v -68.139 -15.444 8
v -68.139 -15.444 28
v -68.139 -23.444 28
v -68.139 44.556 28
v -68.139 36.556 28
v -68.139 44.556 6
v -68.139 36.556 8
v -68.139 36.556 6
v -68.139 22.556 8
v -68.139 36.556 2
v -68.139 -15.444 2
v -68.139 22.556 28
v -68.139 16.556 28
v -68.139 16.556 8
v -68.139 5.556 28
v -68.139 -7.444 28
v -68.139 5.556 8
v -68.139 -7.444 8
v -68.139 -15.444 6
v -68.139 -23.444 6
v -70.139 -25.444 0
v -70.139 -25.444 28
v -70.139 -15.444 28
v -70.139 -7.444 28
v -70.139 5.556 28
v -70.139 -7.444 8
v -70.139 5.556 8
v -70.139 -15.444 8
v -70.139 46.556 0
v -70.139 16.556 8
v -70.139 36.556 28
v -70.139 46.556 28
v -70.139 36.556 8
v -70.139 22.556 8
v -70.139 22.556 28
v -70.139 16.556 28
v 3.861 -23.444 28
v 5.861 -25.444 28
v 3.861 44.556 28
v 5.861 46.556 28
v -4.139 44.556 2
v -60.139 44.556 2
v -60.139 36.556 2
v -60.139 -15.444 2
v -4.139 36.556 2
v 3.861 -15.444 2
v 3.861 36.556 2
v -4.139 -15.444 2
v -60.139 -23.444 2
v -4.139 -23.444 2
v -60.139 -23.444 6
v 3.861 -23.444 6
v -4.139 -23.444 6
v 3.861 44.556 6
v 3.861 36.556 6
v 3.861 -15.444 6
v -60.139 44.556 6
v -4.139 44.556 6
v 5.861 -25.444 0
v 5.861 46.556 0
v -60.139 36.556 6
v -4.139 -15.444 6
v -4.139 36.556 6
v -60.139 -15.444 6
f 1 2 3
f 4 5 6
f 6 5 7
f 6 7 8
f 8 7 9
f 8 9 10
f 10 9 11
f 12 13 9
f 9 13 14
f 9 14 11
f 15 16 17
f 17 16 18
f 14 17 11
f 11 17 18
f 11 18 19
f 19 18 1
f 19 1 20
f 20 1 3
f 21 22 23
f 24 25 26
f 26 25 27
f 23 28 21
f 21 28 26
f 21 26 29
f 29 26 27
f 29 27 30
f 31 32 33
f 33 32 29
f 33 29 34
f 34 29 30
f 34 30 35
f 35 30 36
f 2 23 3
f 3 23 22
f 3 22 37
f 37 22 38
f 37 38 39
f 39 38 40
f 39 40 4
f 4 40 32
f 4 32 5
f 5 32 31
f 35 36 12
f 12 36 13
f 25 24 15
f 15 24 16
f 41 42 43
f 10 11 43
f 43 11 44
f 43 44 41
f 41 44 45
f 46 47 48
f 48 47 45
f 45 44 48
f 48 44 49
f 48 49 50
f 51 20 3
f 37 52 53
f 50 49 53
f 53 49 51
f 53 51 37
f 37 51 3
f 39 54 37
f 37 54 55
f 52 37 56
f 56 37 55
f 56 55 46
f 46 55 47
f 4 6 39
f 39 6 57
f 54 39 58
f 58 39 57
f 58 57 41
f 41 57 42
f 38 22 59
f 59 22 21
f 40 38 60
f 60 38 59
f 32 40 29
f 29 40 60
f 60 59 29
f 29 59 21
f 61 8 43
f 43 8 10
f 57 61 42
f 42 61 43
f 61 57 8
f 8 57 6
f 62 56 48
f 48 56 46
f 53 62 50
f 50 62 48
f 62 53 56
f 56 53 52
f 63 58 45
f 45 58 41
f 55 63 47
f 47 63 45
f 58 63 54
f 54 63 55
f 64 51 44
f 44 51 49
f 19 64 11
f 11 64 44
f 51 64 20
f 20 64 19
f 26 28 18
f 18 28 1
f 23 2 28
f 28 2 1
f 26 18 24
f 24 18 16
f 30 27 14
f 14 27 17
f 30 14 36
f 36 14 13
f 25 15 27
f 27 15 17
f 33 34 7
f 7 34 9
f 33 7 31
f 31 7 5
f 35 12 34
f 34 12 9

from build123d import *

# Parameters (mm, degrees)
ESQUISSE1_W             = 76
ESQUISSE1_H             = 72
BOSS_EXTRU_1_DEPTH      = 2
ESQUISSE2_W             = 76
ESQUISSE2_H             = 72
ESQUISSE2_W_2           = 72
ESQUISSE2_H_2           = 68
BOSS_EXTRU_2_DEPTH      = 26
ESQUISSE3_W             = 8
ESQUISSE3_H             = 8
BOSS_EXTRU_3_DEPTH      = 4
ESQUISSE4_W             = 12.488308145
ESQUISSE4_H             = 8
ESQUISSE4_W_2           = 11.866165586
ESQUISSE4_H_2           = 11
ESQUISSE4_W_3           = 11.945061533
ESQUISSE4_H_3           = 14
ENL_V_MAT_EXTRU_1_DEPTH = 87.526649953


with BuildPart() as part:
    # Esquisse1 → Boss.-Extru.1 (new body)
    with BuildSketch(Plane.XY):
        with Locations((-32.138593491, 10.555760709)):
            Rectangle(ESQUISSE1_W, ESQUISSE1_H)
    extrude(amount=BOSS_EXTRU_1_DEPTH)

    # Esquisse2 → Boss.-Extru.2 (add)
    with BuildSketch(Plane.XY.offset(2)):
        with Locations((-32.138593491, 10.555760709)):
            Rectangle(ESQUISSE2_W, ESQUISSE2_H)
        with Locations((-32.138593491, 10.555760709)):
            Rectangle(ESQUISSE2_W_2, ESQUISSE2_H_2, mode=Mode.SUBTRACT)
    extrude(amount=BOSS_EXTRU_2_DEPTH)

    # Esquisse3 → Boss.-Extru.3 (add)
    with BuildSketch(Plane.XY.offset(2)):
        with Locations((-64.138593491, 40.555760709)):
            Rectangle(ESQUISSE3_W, ESQUISSE3_H)
        with Locations((-0.138593491, -19.444239291)):
            Rectangle(ESQUISSE3_W, ESQUISSE3_H)
        with Locations((-0.138593491, 40.555760709)):
            Rectangle(ESQUISSE3_W, ESQUISSE3_H)
        with Locations((-64.138593491, -19.444239291)):
            Rectangle(ESQUISSE3_W, ESQUISSE3_H)
    extrude(amount=BOSS_EXTRU_3_DEPTH)

    # Esquisse4 → Enlèv. mat.-Extru.1 (cut, through all)
    with BuildSketch(Plane.XY.offset(8)):
        with Locations((-68.655939158, -11.444239291)):
            Rectangle(ESQUISSE4_W, ESQUISSE4_H)
        with Locations((-68.344867878, 11.055760709)):
            Rectangle(ESQUISSE4_W_2, ESQUISSE4_H_2)
        with Locations((-70.945478816, 29.555760709)):
            Rectangle(ESQUISSE4_W_3, ESQUISSE4_H_3)
    extrude(amount=ENL_V_MAT_EXTRU_1_DEPTH, mode=Mode.SUBTRACT)


solid = part.part
